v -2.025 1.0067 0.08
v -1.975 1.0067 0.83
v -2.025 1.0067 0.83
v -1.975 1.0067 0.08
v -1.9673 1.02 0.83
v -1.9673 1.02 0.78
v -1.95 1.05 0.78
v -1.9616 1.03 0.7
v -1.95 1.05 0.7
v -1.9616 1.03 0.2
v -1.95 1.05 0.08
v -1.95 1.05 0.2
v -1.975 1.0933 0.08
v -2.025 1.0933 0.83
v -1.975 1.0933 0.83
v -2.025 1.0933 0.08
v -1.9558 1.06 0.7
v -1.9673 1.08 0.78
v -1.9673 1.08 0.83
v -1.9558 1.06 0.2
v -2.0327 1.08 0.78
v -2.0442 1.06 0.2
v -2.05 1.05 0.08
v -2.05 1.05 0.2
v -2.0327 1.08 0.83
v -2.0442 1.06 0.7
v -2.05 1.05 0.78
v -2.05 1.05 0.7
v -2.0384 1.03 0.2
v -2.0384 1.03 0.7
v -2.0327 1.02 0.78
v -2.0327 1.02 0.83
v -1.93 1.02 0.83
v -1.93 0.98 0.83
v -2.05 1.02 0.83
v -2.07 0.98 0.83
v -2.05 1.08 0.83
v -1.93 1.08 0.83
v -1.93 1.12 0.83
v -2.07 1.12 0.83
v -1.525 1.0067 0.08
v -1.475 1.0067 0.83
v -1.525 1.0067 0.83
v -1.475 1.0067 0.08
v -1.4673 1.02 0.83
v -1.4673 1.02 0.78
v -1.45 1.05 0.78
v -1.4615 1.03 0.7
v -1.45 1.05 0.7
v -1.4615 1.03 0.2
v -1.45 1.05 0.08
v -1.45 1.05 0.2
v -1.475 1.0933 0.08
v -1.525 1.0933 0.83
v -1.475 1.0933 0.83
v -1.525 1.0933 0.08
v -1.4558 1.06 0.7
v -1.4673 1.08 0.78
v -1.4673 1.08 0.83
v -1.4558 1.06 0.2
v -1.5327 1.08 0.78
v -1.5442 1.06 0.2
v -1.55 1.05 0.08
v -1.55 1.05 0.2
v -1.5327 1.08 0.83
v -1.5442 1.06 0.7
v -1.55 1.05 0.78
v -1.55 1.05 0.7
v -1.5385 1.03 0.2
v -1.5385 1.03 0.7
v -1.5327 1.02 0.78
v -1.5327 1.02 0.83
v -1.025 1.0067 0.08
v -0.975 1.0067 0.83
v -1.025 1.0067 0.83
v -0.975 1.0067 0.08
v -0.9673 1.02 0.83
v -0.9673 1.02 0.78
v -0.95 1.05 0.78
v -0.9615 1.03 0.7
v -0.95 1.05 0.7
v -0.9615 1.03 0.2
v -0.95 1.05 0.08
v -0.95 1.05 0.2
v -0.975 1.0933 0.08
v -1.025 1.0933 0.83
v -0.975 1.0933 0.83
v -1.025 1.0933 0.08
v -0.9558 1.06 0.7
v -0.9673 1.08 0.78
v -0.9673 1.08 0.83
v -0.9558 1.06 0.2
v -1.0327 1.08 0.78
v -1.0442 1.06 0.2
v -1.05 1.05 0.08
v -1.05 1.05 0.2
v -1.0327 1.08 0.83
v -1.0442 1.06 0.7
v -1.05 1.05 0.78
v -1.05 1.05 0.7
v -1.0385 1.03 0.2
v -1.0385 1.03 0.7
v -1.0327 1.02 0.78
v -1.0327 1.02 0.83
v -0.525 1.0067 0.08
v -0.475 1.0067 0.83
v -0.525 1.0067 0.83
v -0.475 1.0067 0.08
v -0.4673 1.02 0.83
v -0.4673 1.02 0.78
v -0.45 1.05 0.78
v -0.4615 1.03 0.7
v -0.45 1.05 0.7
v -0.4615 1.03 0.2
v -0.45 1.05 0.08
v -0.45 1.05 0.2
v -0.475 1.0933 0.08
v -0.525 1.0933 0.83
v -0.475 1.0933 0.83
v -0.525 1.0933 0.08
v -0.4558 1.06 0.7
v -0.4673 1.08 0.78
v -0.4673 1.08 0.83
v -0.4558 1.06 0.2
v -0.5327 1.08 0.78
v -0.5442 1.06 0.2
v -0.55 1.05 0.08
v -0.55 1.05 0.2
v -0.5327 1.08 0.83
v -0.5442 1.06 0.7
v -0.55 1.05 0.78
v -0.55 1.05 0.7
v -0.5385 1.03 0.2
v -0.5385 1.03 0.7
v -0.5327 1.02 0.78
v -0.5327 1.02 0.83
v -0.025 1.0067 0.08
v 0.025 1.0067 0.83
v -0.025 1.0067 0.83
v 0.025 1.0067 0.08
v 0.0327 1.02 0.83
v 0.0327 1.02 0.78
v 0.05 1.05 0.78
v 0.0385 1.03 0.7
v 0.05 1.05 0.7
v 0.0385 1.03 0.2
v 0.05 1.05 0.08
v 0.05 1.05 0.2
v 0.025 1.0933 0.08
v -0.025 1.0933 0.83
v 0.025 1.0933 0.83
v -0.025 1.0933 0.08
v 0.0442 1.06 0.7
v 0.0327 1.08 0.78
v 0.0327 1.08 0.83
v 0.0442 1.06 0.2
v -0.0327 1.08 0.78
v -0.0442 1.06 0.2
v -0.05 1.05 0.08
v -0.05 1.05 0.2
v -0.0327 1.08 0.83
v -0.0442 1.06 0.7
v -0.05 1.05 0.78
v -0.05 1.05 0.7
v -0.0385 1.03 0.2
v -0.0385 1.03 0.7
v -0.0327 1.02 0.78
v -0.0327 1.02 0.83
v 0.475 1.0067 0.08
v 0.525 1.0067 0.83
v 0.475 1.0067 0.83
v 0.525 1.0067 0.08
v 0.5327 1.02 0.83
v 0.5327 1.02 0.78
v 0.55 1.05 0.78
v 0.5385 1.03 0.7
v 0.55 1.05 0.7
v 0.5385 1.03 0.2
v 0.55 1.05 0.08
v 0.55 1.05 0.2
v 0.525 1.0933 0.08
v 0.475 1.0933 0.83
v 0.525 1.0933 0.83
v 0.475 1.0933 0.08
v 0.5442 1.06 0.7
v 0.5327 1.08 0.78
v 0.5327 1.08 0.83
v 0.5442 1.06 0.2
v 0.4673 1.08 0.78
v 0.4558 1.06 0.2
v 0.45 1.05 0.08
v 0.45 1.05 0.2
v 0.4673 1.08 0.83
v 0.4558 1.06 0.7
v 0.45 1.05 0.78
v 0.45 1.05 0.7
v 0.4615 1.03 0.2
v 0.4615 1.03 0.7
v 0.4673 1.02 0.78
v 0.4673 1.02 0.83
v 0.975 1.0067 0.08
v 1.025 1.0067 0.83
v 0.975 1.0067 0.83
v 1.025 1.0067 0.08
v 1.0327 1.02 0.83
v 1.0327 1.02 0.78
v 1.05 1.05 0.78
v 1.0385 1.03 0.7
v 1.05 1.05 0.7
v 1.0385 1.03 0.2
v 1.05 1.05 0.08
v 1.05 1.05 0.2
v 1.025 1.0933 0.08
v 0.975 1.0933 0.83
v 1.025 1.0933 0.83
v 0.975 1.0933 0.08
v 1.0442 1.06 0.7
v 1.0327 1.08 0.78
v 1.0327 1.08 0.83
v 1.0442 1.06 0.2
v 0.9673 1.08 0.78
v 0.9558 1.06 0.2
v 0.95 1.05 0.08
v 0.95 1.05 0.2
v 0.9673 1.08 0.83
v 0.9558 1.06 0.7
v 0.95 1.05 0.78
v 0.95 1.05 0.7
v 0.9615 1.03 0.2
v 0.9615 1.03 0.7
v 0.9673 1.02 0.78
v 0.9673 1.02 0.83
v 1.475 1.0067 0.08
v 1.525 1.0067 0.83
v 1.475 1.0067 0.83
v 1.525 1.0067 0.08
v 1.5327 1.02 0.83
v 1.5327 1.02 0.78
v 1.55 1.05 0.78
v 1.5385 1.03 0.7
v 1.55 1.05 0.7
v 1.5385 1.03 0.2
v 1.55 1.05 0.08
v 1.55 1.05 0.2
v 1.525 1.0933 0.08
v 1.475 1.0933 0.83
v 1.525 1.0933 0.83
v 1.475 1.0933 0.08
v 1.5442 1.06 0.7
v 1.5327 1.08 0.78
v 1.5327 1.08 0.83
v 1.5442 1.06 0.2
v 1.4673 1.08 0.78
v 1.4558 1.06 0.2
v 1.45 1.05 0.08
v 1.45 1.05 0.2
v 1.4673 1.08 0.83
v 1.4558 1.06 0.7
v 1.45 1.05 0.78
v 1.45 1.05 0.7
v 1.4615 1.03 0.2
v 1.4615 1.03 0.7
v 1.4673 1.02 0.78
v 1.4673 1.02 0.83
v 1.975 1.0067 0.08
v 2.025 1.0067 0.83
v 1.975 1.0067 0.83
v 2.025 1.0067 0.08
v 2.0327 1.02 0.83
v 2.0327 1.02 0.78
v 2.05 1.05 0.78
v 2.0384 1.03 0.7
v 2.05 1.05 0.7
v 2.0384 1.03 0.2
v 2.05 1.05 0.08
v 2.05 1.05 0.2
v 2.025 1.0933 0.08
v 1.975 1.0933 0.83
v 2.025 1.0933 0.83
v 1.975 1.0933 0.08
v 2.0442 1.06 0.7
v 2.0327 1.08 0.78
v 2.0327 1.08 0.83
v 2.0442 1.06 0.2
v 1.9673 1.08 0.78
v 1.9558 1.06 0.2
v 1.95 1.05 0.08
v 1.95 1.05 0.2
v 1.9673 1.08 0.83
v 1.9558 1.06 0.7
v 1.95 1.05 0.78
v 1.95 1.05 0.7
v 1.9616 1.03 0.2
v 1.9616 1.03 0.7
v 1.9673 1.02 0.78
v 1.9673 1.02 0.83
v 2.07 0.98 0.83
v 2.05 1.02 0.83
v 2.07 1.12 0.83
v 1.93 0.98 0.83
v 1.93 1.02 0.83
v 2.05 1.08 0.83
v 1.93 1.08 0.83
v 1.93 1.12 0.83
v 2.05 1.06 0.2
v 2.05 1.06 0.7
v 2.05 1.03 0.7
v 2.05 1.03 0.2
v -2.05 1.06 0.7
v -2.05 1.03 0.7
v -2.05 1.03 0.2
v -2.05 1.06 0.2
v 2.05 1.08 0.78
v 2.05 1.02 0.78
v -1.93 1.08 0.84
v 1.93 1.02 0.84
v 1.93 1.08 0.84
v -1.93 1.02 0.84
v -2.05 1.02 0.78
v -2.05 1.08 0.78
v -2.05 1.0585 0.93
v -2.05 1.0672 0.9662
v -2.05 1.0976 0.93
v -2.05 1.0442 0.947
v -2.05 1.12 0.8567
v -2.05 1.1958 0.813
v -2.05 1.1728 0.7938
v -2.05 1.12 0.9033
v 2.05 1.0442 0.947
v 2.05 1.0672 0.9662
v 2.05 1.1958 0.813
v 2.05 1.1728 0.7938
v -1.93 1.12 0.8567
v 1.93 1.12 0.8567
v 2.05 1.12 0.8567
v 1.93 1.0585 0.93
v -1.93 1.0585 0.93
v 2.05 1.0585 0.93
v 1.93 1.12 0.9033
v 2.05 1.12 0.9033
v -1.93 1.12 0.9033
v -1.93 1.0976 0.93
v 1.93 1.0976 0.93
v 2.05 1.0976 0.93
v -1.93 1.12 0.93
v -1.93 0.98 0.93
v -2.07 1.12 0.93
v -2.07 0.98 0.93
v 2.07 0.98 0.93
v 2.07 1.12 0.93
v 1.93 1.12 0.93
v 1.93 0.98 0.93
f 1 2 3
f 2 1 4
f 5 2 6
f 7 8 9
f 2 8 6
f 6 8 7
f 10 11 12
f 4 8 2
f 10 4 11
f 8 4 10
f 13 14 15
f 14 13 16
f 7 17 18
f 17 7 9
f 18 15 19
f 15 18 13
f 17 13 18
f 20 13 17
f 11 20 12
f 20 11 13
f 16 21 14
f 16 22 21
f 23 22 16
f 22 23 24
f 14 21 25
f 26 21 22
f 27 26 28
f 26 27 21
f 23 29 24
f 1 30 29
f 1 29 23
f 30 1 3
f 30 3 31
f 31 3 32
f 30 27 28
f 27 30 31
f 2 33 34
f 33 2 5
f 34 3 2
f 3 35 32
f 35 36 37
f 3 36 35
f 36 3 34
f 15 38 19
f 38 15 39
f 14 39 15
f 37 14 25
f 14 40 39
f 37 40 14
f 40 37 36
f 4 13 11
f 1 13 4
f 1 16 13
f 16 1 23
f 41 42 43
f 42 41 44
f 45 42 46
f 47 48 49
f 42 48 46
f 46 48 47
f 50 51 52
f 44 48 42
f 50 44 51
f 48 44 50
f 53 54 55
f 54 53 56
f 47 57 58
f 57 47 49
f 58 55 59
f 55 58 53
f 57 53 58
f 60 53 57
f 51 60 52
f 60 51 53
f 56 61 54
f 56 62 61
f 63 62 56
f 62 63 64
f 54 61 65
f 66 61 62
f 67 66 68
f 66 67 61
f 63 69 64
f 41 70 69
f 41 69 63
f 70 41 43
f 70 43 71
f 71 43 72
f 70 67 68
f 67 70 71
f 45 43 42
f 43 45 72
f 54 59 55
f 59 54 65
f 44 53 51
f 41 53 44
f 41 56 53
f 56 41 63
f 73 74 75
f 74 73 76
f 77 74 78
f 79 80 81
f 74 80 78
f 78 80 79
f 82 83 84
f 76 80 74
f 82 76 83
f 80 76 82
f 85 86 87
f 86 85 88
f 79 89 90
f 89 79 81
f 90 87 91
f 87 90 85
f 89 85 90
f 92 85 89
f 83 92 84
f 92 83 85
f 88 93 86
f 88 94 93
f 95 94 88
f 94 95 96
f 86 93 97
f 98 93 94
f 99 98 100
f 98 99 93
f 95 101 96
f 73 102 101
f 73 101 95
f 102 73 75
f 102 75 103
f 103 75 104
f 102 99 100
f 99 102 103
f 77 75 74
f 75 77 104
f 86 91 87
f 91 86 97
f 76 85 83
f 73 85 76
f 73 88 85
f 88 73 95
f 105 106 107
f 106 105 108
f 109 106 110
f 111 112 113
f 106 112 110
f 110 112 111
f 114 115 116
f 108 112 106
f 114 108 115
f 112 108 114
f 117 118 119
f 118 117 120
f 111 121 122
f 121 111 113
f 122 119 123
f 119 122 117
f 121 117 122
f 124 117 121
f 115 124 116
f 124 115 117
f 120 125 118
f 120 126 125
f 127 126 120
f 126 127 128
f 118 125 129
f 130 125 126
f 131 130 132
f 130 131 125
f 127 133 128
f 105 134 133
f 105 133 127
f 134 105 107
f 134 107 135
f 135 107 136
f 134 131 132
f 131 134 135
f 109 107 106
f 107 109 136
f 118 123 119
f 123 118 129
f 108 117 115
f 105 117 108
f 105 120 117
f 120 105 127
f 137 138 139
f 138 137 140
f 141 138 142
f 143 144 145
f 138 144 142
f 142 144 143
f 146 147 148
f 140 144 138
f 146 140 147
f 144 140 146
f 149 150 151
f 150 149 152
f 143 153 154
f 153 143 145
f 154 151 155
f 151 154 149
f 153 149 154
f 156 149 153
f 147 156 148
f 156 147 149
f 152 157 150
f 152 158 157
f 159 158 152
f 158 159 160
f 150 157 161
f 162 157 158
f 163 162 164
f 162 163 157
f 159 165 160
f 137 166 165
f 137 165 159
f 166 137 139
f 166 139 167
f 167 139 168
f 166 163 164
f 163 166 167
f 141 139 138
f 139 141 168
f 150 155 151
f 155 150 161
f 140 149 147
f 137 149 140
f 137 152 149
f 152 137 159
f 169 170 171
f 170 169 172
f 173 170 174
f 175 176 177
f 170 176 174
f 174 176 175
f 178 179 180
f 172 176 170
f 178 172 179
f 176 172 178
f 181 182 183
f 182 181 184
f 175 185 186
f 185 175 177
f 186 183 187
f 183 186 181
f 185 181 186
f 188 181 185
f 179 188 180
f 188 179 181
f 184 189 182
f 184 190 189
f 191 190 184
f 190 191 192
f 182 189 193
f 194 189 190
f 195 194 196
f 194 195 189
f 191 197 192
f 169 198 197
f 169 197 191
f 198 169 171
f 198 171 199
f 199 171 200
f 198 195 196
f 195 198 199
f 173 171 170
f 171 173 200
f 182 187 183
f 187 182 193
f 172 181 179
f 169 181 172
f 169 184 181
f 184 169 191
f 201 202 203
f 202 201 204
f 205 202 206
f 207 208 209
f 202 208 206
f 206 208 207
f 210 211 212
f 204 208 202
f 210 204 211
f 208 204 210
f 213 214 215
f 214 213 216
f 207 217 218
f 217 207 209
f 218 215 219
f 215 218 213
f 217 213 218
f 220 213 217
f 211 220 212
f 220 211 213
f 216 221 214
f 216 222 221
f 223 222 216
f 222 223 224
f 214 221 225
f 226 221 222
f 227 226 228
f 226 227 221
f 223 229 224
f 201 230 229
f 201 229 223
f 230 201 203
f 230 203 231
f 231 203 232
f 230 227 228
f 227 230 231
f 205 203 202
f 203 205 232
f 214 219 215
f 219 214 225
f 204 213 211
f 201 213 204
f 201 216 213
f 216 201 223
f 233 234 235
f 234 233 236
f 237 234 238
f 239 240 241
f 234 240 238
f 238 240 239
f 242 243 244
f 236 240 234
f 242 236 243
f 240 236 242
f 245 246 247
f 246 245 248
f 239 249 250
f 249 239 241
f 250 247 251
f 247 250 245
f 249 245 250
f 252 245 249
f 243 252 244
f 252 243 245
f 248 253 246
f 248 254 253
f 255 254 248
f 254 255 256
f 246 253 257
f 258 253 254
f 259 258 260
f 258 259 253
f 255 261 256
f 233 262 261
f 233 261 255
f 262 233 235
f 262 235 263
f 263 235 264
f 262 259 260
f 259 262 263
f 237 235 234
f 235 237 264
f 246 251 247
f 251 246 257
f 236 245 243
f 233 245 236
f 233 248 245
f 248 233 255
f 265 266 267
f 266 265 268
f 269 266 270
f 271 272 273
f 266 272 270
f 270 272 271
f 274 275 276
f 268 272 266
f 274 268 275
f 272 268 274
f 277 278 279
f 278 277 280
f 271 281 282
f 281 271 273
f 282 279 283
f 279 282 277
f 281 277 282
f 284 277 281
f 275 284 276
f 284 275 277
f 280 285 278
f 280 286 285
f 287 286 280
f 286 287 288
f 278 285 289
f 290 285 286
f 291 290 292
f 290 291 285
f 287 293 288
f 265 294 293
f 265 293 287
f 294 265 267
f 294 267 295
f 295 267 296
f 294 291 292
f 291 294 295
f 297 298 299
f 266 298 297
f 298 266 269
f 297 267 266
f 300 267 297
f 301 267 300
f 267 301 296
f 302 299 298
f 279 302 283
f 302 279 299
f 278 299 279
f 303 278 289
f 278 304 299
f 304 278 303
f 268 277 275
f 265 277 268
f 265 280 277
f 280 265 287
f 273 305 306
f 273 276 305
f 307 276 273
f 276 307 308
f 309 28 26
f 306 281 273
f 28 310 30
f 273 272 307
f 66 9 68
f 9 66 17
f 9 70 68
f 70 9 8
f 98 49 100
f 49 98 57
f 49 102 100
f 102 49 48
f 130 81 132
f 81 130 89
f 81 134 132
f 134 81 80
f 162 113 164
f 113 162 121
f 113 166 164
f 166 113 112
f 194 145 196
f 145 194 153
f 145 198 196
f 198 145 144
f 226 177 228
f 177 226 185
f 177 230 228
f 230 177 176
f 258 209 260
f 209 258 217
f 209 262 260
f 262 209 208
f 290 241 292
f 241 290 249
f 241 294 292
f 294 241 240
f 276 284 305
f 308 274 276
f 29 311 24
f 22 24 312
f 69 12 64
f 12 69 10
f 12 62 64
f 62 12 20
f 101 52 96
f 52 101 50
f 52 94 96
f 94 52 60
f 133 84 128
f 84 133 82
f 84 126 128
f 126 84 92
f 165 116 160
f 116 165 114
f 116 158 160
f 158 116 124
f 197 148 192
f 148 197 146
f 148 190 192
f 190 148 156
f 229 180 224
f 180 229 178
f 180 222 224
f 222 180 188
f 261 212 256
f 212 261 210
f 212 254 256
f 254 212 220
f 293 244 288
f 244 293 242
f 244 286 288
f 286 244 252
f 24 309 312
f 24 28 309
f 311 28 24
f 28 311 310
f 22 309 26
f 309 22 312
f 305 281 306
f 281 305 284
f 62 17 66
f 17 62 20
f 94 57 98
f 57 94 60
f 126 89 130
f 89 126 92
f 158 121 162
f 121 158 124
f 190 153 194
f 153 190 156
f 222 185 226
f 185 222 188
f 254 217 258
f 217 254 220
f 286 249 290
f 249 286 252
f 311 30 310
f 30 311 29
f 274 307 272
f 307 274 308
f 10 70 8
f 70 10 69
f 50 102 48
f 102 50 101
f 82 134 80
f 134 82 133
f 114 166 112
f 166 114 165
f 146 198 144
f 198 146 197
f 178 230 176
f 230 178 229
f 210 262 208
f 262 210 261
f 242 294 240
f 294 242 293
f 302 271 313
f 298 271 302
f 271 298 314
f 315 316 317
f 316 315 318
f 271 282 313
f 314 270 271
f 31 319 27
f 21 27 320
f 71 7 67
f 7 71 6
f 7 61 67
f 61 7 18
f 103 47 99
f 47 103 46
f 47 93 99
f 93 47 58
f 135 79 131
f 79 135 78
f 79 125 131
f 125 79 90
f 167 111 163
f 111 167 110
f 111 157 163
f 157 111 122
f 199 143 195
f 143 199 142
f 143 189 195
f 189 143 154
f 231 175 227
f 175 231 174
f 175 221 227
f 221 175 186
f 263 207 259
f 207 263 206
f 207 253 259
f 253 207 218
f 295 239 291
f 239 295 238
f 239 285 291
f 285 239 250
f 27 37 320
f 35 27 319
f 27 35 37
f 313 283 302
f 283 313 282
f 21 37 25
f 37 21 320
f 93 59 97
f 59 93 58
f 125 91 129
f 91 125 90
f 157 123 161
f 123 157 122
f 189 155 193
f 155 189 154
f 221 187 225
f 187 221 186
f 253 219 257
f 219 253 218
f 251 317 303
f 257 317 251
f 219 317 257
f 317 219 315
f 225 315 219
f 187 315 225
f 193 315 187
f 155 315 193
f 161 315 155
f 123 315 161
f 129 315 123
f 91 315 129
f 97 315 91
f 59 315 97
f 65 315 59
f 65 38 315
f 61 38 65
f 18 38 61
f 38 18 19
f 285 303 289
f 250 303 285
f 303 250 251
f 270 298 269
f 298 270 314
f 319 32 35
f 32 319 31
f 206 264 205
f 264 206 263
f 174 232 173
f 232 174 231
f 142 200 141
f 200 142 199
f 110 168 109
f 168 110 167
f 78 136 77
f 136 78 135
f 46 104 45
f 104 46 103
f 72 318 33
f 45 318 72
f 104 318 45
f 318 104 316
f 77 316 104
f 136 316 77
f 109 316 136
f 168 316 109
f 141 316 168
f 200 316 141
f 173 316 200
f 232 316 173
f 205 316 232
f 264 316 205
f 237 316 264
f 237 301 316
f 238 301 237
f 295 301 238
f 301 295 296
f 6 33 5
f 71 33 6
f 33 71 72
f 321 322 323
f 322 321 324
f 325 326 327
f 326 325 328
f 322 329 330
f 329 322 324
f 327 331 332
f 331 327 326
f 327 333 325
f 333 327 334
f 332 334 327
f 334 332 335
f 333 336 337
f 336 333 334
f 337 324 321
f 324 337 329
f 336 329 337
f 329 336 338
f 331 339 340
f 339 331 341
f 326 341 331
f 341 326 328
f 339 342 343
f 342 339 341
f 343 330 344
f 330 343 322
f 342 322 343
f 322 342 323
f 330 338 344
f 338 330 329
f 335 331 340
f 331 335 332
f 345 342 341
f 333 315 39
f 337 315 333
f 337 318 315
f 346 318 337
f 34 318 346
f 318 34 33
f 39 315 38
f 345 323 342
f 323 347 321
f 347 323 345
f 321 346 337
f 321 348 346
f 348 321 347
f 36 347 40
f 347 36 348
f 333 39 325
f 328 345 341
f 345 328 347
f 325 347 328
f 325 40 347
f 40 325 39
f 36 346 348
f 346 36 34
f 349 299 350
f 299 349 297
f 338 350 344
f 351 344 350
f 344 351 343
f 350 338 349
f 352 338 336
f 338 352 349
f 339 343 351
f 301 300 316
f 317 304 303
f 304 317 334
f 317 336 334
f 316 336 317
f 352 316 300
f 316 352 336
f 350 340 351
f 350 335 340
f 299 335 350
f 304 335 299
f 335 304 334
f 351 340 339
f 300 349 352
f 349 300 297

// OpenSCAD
union() {
  union() {
    union() {
      union() {
        union() {
          union() {
            union() {
              union() {
                union() {
                  union() {
                    union() {
                      union() {
                        union() {
                          translate([-2.0, 0, 0]) {
                            translate([0, 1.05, 0]) {
                              translate([0, 0, 8.0e-2]) {
                                cylinder(h = 0.75, r = 5.0e-2, $fn = 6);
                              }
                            }
                          }
                          translate([-1.5, 0, 0]) {
                            translate([0, 1.05, 0]) {
                              translate([0, 0, 8.0e-2]) {
                                cylinder(h = 0.75, r = 5.0e-2, $fn = 6);
                              }
                            }
                          }
                        }
                        translate([-1.0, 0, 0]) {
                          translate([0, 1.05, 0]) {
                            translate([0, 0, 8.0e-2]) {
                              cylinder(h = 0.75, r = 5.0e-2, $fn = 6);
                            }
                          }
                        }
                      }
                      translate([-0.5, 0, 0]) {
                        translate([0, 1.05, 0]) {
                          translate([0, 0, 8.0e-2]) {
                            cylinder(h = 0.75, r = 5.0e-2, $fn = 6);
                          }
                        }
                      }
                    }
                    translate([0.0, 0, 0]) {
                      translate([0, 1.05, 0]) {
                        translate([0, 0, 8.0e-2]) {
                          cylinder(h = 0.75, r = 5.0e-2, $fn = 6);
                        }
                      }
                    }
                  }
                  translate([0.5, 0, 0]) {
                    translate([0, 1.05, 0]) {
                      translate([0, 0, 8.0e-2]) {
                        cylinder(h = 0.75, r = 5.0e-2, $fn = 6);
                      }
                    }
                  }
                }
                translate([1.0, 0, 0]) {
                  translate([0, 1.05, 0]) {
                    translate([0, 0, 8.0e-2]) {
                      cylinder(h = 0.75, r = 5.0e-2, $fn = 6);
                    }
                  }
                }
              }
              translate([1.5, 0, 0]) {
                translate([0, 1.05, 0]) {
                  translate([0, 0, 8.0e-2]) {
                    cylinder(h = 0.75, r = 5.0e-2, $fn = 6);
                  }
                }
              }
            }
            translate([2.0, 0, 0]) {
              translate([0, 1.05, 0]) {
                translate([0, 0, 8.0e-2]) {
                  cylinder(h = 0.75, r = 5.0e-2, $fn = 6);
                }
              }
            }
          }
          translate([-2.05, 0, 0]) {
            translate([0, 1.03, 0]) {
              translate([0, 0, 0.2]) {
                cube([4.1, 3.0e-2, 0.5]);
              }
            }
          }
        }
        translate([-2.05, 0, 0]) {
          translate([0, 1.02, 0]) {
            translate([0, 0, 0.78]) {
              cube([4.1, 6.0e-2, 6.0e-2]);
            }
          }
        }
      }
      translate([0, 1.12, 0]) {
        translate([0, 0, 0.88]) {
          rotate([40.0, 0, 0]) {
            translate([-2.05, 0, 0]) {
              translate([0, -1.5e-2, 0]) {
                translate([0, 0, -0.1]) {
                  cube([4.1, 3.0e-2, 0.2]);
                }
              }
            }
          }
        }
      }
    }
    translate([-2.07, 0, 0]) {
      translate([0, 0.98, 0]) {
        translate([0, 0, 0.83]) {
          cube([0.14, 0.14, 0.1]);
        }
      }
    }
  }
  translate([1.93, 0, 0]) {
    translate([0, 0.98, 0]) {
      translate([0, 0, 0.83]) {
        cube([0.14, 0.14, 0.1]);
      }
    }
  }
}
$fn = 50;
